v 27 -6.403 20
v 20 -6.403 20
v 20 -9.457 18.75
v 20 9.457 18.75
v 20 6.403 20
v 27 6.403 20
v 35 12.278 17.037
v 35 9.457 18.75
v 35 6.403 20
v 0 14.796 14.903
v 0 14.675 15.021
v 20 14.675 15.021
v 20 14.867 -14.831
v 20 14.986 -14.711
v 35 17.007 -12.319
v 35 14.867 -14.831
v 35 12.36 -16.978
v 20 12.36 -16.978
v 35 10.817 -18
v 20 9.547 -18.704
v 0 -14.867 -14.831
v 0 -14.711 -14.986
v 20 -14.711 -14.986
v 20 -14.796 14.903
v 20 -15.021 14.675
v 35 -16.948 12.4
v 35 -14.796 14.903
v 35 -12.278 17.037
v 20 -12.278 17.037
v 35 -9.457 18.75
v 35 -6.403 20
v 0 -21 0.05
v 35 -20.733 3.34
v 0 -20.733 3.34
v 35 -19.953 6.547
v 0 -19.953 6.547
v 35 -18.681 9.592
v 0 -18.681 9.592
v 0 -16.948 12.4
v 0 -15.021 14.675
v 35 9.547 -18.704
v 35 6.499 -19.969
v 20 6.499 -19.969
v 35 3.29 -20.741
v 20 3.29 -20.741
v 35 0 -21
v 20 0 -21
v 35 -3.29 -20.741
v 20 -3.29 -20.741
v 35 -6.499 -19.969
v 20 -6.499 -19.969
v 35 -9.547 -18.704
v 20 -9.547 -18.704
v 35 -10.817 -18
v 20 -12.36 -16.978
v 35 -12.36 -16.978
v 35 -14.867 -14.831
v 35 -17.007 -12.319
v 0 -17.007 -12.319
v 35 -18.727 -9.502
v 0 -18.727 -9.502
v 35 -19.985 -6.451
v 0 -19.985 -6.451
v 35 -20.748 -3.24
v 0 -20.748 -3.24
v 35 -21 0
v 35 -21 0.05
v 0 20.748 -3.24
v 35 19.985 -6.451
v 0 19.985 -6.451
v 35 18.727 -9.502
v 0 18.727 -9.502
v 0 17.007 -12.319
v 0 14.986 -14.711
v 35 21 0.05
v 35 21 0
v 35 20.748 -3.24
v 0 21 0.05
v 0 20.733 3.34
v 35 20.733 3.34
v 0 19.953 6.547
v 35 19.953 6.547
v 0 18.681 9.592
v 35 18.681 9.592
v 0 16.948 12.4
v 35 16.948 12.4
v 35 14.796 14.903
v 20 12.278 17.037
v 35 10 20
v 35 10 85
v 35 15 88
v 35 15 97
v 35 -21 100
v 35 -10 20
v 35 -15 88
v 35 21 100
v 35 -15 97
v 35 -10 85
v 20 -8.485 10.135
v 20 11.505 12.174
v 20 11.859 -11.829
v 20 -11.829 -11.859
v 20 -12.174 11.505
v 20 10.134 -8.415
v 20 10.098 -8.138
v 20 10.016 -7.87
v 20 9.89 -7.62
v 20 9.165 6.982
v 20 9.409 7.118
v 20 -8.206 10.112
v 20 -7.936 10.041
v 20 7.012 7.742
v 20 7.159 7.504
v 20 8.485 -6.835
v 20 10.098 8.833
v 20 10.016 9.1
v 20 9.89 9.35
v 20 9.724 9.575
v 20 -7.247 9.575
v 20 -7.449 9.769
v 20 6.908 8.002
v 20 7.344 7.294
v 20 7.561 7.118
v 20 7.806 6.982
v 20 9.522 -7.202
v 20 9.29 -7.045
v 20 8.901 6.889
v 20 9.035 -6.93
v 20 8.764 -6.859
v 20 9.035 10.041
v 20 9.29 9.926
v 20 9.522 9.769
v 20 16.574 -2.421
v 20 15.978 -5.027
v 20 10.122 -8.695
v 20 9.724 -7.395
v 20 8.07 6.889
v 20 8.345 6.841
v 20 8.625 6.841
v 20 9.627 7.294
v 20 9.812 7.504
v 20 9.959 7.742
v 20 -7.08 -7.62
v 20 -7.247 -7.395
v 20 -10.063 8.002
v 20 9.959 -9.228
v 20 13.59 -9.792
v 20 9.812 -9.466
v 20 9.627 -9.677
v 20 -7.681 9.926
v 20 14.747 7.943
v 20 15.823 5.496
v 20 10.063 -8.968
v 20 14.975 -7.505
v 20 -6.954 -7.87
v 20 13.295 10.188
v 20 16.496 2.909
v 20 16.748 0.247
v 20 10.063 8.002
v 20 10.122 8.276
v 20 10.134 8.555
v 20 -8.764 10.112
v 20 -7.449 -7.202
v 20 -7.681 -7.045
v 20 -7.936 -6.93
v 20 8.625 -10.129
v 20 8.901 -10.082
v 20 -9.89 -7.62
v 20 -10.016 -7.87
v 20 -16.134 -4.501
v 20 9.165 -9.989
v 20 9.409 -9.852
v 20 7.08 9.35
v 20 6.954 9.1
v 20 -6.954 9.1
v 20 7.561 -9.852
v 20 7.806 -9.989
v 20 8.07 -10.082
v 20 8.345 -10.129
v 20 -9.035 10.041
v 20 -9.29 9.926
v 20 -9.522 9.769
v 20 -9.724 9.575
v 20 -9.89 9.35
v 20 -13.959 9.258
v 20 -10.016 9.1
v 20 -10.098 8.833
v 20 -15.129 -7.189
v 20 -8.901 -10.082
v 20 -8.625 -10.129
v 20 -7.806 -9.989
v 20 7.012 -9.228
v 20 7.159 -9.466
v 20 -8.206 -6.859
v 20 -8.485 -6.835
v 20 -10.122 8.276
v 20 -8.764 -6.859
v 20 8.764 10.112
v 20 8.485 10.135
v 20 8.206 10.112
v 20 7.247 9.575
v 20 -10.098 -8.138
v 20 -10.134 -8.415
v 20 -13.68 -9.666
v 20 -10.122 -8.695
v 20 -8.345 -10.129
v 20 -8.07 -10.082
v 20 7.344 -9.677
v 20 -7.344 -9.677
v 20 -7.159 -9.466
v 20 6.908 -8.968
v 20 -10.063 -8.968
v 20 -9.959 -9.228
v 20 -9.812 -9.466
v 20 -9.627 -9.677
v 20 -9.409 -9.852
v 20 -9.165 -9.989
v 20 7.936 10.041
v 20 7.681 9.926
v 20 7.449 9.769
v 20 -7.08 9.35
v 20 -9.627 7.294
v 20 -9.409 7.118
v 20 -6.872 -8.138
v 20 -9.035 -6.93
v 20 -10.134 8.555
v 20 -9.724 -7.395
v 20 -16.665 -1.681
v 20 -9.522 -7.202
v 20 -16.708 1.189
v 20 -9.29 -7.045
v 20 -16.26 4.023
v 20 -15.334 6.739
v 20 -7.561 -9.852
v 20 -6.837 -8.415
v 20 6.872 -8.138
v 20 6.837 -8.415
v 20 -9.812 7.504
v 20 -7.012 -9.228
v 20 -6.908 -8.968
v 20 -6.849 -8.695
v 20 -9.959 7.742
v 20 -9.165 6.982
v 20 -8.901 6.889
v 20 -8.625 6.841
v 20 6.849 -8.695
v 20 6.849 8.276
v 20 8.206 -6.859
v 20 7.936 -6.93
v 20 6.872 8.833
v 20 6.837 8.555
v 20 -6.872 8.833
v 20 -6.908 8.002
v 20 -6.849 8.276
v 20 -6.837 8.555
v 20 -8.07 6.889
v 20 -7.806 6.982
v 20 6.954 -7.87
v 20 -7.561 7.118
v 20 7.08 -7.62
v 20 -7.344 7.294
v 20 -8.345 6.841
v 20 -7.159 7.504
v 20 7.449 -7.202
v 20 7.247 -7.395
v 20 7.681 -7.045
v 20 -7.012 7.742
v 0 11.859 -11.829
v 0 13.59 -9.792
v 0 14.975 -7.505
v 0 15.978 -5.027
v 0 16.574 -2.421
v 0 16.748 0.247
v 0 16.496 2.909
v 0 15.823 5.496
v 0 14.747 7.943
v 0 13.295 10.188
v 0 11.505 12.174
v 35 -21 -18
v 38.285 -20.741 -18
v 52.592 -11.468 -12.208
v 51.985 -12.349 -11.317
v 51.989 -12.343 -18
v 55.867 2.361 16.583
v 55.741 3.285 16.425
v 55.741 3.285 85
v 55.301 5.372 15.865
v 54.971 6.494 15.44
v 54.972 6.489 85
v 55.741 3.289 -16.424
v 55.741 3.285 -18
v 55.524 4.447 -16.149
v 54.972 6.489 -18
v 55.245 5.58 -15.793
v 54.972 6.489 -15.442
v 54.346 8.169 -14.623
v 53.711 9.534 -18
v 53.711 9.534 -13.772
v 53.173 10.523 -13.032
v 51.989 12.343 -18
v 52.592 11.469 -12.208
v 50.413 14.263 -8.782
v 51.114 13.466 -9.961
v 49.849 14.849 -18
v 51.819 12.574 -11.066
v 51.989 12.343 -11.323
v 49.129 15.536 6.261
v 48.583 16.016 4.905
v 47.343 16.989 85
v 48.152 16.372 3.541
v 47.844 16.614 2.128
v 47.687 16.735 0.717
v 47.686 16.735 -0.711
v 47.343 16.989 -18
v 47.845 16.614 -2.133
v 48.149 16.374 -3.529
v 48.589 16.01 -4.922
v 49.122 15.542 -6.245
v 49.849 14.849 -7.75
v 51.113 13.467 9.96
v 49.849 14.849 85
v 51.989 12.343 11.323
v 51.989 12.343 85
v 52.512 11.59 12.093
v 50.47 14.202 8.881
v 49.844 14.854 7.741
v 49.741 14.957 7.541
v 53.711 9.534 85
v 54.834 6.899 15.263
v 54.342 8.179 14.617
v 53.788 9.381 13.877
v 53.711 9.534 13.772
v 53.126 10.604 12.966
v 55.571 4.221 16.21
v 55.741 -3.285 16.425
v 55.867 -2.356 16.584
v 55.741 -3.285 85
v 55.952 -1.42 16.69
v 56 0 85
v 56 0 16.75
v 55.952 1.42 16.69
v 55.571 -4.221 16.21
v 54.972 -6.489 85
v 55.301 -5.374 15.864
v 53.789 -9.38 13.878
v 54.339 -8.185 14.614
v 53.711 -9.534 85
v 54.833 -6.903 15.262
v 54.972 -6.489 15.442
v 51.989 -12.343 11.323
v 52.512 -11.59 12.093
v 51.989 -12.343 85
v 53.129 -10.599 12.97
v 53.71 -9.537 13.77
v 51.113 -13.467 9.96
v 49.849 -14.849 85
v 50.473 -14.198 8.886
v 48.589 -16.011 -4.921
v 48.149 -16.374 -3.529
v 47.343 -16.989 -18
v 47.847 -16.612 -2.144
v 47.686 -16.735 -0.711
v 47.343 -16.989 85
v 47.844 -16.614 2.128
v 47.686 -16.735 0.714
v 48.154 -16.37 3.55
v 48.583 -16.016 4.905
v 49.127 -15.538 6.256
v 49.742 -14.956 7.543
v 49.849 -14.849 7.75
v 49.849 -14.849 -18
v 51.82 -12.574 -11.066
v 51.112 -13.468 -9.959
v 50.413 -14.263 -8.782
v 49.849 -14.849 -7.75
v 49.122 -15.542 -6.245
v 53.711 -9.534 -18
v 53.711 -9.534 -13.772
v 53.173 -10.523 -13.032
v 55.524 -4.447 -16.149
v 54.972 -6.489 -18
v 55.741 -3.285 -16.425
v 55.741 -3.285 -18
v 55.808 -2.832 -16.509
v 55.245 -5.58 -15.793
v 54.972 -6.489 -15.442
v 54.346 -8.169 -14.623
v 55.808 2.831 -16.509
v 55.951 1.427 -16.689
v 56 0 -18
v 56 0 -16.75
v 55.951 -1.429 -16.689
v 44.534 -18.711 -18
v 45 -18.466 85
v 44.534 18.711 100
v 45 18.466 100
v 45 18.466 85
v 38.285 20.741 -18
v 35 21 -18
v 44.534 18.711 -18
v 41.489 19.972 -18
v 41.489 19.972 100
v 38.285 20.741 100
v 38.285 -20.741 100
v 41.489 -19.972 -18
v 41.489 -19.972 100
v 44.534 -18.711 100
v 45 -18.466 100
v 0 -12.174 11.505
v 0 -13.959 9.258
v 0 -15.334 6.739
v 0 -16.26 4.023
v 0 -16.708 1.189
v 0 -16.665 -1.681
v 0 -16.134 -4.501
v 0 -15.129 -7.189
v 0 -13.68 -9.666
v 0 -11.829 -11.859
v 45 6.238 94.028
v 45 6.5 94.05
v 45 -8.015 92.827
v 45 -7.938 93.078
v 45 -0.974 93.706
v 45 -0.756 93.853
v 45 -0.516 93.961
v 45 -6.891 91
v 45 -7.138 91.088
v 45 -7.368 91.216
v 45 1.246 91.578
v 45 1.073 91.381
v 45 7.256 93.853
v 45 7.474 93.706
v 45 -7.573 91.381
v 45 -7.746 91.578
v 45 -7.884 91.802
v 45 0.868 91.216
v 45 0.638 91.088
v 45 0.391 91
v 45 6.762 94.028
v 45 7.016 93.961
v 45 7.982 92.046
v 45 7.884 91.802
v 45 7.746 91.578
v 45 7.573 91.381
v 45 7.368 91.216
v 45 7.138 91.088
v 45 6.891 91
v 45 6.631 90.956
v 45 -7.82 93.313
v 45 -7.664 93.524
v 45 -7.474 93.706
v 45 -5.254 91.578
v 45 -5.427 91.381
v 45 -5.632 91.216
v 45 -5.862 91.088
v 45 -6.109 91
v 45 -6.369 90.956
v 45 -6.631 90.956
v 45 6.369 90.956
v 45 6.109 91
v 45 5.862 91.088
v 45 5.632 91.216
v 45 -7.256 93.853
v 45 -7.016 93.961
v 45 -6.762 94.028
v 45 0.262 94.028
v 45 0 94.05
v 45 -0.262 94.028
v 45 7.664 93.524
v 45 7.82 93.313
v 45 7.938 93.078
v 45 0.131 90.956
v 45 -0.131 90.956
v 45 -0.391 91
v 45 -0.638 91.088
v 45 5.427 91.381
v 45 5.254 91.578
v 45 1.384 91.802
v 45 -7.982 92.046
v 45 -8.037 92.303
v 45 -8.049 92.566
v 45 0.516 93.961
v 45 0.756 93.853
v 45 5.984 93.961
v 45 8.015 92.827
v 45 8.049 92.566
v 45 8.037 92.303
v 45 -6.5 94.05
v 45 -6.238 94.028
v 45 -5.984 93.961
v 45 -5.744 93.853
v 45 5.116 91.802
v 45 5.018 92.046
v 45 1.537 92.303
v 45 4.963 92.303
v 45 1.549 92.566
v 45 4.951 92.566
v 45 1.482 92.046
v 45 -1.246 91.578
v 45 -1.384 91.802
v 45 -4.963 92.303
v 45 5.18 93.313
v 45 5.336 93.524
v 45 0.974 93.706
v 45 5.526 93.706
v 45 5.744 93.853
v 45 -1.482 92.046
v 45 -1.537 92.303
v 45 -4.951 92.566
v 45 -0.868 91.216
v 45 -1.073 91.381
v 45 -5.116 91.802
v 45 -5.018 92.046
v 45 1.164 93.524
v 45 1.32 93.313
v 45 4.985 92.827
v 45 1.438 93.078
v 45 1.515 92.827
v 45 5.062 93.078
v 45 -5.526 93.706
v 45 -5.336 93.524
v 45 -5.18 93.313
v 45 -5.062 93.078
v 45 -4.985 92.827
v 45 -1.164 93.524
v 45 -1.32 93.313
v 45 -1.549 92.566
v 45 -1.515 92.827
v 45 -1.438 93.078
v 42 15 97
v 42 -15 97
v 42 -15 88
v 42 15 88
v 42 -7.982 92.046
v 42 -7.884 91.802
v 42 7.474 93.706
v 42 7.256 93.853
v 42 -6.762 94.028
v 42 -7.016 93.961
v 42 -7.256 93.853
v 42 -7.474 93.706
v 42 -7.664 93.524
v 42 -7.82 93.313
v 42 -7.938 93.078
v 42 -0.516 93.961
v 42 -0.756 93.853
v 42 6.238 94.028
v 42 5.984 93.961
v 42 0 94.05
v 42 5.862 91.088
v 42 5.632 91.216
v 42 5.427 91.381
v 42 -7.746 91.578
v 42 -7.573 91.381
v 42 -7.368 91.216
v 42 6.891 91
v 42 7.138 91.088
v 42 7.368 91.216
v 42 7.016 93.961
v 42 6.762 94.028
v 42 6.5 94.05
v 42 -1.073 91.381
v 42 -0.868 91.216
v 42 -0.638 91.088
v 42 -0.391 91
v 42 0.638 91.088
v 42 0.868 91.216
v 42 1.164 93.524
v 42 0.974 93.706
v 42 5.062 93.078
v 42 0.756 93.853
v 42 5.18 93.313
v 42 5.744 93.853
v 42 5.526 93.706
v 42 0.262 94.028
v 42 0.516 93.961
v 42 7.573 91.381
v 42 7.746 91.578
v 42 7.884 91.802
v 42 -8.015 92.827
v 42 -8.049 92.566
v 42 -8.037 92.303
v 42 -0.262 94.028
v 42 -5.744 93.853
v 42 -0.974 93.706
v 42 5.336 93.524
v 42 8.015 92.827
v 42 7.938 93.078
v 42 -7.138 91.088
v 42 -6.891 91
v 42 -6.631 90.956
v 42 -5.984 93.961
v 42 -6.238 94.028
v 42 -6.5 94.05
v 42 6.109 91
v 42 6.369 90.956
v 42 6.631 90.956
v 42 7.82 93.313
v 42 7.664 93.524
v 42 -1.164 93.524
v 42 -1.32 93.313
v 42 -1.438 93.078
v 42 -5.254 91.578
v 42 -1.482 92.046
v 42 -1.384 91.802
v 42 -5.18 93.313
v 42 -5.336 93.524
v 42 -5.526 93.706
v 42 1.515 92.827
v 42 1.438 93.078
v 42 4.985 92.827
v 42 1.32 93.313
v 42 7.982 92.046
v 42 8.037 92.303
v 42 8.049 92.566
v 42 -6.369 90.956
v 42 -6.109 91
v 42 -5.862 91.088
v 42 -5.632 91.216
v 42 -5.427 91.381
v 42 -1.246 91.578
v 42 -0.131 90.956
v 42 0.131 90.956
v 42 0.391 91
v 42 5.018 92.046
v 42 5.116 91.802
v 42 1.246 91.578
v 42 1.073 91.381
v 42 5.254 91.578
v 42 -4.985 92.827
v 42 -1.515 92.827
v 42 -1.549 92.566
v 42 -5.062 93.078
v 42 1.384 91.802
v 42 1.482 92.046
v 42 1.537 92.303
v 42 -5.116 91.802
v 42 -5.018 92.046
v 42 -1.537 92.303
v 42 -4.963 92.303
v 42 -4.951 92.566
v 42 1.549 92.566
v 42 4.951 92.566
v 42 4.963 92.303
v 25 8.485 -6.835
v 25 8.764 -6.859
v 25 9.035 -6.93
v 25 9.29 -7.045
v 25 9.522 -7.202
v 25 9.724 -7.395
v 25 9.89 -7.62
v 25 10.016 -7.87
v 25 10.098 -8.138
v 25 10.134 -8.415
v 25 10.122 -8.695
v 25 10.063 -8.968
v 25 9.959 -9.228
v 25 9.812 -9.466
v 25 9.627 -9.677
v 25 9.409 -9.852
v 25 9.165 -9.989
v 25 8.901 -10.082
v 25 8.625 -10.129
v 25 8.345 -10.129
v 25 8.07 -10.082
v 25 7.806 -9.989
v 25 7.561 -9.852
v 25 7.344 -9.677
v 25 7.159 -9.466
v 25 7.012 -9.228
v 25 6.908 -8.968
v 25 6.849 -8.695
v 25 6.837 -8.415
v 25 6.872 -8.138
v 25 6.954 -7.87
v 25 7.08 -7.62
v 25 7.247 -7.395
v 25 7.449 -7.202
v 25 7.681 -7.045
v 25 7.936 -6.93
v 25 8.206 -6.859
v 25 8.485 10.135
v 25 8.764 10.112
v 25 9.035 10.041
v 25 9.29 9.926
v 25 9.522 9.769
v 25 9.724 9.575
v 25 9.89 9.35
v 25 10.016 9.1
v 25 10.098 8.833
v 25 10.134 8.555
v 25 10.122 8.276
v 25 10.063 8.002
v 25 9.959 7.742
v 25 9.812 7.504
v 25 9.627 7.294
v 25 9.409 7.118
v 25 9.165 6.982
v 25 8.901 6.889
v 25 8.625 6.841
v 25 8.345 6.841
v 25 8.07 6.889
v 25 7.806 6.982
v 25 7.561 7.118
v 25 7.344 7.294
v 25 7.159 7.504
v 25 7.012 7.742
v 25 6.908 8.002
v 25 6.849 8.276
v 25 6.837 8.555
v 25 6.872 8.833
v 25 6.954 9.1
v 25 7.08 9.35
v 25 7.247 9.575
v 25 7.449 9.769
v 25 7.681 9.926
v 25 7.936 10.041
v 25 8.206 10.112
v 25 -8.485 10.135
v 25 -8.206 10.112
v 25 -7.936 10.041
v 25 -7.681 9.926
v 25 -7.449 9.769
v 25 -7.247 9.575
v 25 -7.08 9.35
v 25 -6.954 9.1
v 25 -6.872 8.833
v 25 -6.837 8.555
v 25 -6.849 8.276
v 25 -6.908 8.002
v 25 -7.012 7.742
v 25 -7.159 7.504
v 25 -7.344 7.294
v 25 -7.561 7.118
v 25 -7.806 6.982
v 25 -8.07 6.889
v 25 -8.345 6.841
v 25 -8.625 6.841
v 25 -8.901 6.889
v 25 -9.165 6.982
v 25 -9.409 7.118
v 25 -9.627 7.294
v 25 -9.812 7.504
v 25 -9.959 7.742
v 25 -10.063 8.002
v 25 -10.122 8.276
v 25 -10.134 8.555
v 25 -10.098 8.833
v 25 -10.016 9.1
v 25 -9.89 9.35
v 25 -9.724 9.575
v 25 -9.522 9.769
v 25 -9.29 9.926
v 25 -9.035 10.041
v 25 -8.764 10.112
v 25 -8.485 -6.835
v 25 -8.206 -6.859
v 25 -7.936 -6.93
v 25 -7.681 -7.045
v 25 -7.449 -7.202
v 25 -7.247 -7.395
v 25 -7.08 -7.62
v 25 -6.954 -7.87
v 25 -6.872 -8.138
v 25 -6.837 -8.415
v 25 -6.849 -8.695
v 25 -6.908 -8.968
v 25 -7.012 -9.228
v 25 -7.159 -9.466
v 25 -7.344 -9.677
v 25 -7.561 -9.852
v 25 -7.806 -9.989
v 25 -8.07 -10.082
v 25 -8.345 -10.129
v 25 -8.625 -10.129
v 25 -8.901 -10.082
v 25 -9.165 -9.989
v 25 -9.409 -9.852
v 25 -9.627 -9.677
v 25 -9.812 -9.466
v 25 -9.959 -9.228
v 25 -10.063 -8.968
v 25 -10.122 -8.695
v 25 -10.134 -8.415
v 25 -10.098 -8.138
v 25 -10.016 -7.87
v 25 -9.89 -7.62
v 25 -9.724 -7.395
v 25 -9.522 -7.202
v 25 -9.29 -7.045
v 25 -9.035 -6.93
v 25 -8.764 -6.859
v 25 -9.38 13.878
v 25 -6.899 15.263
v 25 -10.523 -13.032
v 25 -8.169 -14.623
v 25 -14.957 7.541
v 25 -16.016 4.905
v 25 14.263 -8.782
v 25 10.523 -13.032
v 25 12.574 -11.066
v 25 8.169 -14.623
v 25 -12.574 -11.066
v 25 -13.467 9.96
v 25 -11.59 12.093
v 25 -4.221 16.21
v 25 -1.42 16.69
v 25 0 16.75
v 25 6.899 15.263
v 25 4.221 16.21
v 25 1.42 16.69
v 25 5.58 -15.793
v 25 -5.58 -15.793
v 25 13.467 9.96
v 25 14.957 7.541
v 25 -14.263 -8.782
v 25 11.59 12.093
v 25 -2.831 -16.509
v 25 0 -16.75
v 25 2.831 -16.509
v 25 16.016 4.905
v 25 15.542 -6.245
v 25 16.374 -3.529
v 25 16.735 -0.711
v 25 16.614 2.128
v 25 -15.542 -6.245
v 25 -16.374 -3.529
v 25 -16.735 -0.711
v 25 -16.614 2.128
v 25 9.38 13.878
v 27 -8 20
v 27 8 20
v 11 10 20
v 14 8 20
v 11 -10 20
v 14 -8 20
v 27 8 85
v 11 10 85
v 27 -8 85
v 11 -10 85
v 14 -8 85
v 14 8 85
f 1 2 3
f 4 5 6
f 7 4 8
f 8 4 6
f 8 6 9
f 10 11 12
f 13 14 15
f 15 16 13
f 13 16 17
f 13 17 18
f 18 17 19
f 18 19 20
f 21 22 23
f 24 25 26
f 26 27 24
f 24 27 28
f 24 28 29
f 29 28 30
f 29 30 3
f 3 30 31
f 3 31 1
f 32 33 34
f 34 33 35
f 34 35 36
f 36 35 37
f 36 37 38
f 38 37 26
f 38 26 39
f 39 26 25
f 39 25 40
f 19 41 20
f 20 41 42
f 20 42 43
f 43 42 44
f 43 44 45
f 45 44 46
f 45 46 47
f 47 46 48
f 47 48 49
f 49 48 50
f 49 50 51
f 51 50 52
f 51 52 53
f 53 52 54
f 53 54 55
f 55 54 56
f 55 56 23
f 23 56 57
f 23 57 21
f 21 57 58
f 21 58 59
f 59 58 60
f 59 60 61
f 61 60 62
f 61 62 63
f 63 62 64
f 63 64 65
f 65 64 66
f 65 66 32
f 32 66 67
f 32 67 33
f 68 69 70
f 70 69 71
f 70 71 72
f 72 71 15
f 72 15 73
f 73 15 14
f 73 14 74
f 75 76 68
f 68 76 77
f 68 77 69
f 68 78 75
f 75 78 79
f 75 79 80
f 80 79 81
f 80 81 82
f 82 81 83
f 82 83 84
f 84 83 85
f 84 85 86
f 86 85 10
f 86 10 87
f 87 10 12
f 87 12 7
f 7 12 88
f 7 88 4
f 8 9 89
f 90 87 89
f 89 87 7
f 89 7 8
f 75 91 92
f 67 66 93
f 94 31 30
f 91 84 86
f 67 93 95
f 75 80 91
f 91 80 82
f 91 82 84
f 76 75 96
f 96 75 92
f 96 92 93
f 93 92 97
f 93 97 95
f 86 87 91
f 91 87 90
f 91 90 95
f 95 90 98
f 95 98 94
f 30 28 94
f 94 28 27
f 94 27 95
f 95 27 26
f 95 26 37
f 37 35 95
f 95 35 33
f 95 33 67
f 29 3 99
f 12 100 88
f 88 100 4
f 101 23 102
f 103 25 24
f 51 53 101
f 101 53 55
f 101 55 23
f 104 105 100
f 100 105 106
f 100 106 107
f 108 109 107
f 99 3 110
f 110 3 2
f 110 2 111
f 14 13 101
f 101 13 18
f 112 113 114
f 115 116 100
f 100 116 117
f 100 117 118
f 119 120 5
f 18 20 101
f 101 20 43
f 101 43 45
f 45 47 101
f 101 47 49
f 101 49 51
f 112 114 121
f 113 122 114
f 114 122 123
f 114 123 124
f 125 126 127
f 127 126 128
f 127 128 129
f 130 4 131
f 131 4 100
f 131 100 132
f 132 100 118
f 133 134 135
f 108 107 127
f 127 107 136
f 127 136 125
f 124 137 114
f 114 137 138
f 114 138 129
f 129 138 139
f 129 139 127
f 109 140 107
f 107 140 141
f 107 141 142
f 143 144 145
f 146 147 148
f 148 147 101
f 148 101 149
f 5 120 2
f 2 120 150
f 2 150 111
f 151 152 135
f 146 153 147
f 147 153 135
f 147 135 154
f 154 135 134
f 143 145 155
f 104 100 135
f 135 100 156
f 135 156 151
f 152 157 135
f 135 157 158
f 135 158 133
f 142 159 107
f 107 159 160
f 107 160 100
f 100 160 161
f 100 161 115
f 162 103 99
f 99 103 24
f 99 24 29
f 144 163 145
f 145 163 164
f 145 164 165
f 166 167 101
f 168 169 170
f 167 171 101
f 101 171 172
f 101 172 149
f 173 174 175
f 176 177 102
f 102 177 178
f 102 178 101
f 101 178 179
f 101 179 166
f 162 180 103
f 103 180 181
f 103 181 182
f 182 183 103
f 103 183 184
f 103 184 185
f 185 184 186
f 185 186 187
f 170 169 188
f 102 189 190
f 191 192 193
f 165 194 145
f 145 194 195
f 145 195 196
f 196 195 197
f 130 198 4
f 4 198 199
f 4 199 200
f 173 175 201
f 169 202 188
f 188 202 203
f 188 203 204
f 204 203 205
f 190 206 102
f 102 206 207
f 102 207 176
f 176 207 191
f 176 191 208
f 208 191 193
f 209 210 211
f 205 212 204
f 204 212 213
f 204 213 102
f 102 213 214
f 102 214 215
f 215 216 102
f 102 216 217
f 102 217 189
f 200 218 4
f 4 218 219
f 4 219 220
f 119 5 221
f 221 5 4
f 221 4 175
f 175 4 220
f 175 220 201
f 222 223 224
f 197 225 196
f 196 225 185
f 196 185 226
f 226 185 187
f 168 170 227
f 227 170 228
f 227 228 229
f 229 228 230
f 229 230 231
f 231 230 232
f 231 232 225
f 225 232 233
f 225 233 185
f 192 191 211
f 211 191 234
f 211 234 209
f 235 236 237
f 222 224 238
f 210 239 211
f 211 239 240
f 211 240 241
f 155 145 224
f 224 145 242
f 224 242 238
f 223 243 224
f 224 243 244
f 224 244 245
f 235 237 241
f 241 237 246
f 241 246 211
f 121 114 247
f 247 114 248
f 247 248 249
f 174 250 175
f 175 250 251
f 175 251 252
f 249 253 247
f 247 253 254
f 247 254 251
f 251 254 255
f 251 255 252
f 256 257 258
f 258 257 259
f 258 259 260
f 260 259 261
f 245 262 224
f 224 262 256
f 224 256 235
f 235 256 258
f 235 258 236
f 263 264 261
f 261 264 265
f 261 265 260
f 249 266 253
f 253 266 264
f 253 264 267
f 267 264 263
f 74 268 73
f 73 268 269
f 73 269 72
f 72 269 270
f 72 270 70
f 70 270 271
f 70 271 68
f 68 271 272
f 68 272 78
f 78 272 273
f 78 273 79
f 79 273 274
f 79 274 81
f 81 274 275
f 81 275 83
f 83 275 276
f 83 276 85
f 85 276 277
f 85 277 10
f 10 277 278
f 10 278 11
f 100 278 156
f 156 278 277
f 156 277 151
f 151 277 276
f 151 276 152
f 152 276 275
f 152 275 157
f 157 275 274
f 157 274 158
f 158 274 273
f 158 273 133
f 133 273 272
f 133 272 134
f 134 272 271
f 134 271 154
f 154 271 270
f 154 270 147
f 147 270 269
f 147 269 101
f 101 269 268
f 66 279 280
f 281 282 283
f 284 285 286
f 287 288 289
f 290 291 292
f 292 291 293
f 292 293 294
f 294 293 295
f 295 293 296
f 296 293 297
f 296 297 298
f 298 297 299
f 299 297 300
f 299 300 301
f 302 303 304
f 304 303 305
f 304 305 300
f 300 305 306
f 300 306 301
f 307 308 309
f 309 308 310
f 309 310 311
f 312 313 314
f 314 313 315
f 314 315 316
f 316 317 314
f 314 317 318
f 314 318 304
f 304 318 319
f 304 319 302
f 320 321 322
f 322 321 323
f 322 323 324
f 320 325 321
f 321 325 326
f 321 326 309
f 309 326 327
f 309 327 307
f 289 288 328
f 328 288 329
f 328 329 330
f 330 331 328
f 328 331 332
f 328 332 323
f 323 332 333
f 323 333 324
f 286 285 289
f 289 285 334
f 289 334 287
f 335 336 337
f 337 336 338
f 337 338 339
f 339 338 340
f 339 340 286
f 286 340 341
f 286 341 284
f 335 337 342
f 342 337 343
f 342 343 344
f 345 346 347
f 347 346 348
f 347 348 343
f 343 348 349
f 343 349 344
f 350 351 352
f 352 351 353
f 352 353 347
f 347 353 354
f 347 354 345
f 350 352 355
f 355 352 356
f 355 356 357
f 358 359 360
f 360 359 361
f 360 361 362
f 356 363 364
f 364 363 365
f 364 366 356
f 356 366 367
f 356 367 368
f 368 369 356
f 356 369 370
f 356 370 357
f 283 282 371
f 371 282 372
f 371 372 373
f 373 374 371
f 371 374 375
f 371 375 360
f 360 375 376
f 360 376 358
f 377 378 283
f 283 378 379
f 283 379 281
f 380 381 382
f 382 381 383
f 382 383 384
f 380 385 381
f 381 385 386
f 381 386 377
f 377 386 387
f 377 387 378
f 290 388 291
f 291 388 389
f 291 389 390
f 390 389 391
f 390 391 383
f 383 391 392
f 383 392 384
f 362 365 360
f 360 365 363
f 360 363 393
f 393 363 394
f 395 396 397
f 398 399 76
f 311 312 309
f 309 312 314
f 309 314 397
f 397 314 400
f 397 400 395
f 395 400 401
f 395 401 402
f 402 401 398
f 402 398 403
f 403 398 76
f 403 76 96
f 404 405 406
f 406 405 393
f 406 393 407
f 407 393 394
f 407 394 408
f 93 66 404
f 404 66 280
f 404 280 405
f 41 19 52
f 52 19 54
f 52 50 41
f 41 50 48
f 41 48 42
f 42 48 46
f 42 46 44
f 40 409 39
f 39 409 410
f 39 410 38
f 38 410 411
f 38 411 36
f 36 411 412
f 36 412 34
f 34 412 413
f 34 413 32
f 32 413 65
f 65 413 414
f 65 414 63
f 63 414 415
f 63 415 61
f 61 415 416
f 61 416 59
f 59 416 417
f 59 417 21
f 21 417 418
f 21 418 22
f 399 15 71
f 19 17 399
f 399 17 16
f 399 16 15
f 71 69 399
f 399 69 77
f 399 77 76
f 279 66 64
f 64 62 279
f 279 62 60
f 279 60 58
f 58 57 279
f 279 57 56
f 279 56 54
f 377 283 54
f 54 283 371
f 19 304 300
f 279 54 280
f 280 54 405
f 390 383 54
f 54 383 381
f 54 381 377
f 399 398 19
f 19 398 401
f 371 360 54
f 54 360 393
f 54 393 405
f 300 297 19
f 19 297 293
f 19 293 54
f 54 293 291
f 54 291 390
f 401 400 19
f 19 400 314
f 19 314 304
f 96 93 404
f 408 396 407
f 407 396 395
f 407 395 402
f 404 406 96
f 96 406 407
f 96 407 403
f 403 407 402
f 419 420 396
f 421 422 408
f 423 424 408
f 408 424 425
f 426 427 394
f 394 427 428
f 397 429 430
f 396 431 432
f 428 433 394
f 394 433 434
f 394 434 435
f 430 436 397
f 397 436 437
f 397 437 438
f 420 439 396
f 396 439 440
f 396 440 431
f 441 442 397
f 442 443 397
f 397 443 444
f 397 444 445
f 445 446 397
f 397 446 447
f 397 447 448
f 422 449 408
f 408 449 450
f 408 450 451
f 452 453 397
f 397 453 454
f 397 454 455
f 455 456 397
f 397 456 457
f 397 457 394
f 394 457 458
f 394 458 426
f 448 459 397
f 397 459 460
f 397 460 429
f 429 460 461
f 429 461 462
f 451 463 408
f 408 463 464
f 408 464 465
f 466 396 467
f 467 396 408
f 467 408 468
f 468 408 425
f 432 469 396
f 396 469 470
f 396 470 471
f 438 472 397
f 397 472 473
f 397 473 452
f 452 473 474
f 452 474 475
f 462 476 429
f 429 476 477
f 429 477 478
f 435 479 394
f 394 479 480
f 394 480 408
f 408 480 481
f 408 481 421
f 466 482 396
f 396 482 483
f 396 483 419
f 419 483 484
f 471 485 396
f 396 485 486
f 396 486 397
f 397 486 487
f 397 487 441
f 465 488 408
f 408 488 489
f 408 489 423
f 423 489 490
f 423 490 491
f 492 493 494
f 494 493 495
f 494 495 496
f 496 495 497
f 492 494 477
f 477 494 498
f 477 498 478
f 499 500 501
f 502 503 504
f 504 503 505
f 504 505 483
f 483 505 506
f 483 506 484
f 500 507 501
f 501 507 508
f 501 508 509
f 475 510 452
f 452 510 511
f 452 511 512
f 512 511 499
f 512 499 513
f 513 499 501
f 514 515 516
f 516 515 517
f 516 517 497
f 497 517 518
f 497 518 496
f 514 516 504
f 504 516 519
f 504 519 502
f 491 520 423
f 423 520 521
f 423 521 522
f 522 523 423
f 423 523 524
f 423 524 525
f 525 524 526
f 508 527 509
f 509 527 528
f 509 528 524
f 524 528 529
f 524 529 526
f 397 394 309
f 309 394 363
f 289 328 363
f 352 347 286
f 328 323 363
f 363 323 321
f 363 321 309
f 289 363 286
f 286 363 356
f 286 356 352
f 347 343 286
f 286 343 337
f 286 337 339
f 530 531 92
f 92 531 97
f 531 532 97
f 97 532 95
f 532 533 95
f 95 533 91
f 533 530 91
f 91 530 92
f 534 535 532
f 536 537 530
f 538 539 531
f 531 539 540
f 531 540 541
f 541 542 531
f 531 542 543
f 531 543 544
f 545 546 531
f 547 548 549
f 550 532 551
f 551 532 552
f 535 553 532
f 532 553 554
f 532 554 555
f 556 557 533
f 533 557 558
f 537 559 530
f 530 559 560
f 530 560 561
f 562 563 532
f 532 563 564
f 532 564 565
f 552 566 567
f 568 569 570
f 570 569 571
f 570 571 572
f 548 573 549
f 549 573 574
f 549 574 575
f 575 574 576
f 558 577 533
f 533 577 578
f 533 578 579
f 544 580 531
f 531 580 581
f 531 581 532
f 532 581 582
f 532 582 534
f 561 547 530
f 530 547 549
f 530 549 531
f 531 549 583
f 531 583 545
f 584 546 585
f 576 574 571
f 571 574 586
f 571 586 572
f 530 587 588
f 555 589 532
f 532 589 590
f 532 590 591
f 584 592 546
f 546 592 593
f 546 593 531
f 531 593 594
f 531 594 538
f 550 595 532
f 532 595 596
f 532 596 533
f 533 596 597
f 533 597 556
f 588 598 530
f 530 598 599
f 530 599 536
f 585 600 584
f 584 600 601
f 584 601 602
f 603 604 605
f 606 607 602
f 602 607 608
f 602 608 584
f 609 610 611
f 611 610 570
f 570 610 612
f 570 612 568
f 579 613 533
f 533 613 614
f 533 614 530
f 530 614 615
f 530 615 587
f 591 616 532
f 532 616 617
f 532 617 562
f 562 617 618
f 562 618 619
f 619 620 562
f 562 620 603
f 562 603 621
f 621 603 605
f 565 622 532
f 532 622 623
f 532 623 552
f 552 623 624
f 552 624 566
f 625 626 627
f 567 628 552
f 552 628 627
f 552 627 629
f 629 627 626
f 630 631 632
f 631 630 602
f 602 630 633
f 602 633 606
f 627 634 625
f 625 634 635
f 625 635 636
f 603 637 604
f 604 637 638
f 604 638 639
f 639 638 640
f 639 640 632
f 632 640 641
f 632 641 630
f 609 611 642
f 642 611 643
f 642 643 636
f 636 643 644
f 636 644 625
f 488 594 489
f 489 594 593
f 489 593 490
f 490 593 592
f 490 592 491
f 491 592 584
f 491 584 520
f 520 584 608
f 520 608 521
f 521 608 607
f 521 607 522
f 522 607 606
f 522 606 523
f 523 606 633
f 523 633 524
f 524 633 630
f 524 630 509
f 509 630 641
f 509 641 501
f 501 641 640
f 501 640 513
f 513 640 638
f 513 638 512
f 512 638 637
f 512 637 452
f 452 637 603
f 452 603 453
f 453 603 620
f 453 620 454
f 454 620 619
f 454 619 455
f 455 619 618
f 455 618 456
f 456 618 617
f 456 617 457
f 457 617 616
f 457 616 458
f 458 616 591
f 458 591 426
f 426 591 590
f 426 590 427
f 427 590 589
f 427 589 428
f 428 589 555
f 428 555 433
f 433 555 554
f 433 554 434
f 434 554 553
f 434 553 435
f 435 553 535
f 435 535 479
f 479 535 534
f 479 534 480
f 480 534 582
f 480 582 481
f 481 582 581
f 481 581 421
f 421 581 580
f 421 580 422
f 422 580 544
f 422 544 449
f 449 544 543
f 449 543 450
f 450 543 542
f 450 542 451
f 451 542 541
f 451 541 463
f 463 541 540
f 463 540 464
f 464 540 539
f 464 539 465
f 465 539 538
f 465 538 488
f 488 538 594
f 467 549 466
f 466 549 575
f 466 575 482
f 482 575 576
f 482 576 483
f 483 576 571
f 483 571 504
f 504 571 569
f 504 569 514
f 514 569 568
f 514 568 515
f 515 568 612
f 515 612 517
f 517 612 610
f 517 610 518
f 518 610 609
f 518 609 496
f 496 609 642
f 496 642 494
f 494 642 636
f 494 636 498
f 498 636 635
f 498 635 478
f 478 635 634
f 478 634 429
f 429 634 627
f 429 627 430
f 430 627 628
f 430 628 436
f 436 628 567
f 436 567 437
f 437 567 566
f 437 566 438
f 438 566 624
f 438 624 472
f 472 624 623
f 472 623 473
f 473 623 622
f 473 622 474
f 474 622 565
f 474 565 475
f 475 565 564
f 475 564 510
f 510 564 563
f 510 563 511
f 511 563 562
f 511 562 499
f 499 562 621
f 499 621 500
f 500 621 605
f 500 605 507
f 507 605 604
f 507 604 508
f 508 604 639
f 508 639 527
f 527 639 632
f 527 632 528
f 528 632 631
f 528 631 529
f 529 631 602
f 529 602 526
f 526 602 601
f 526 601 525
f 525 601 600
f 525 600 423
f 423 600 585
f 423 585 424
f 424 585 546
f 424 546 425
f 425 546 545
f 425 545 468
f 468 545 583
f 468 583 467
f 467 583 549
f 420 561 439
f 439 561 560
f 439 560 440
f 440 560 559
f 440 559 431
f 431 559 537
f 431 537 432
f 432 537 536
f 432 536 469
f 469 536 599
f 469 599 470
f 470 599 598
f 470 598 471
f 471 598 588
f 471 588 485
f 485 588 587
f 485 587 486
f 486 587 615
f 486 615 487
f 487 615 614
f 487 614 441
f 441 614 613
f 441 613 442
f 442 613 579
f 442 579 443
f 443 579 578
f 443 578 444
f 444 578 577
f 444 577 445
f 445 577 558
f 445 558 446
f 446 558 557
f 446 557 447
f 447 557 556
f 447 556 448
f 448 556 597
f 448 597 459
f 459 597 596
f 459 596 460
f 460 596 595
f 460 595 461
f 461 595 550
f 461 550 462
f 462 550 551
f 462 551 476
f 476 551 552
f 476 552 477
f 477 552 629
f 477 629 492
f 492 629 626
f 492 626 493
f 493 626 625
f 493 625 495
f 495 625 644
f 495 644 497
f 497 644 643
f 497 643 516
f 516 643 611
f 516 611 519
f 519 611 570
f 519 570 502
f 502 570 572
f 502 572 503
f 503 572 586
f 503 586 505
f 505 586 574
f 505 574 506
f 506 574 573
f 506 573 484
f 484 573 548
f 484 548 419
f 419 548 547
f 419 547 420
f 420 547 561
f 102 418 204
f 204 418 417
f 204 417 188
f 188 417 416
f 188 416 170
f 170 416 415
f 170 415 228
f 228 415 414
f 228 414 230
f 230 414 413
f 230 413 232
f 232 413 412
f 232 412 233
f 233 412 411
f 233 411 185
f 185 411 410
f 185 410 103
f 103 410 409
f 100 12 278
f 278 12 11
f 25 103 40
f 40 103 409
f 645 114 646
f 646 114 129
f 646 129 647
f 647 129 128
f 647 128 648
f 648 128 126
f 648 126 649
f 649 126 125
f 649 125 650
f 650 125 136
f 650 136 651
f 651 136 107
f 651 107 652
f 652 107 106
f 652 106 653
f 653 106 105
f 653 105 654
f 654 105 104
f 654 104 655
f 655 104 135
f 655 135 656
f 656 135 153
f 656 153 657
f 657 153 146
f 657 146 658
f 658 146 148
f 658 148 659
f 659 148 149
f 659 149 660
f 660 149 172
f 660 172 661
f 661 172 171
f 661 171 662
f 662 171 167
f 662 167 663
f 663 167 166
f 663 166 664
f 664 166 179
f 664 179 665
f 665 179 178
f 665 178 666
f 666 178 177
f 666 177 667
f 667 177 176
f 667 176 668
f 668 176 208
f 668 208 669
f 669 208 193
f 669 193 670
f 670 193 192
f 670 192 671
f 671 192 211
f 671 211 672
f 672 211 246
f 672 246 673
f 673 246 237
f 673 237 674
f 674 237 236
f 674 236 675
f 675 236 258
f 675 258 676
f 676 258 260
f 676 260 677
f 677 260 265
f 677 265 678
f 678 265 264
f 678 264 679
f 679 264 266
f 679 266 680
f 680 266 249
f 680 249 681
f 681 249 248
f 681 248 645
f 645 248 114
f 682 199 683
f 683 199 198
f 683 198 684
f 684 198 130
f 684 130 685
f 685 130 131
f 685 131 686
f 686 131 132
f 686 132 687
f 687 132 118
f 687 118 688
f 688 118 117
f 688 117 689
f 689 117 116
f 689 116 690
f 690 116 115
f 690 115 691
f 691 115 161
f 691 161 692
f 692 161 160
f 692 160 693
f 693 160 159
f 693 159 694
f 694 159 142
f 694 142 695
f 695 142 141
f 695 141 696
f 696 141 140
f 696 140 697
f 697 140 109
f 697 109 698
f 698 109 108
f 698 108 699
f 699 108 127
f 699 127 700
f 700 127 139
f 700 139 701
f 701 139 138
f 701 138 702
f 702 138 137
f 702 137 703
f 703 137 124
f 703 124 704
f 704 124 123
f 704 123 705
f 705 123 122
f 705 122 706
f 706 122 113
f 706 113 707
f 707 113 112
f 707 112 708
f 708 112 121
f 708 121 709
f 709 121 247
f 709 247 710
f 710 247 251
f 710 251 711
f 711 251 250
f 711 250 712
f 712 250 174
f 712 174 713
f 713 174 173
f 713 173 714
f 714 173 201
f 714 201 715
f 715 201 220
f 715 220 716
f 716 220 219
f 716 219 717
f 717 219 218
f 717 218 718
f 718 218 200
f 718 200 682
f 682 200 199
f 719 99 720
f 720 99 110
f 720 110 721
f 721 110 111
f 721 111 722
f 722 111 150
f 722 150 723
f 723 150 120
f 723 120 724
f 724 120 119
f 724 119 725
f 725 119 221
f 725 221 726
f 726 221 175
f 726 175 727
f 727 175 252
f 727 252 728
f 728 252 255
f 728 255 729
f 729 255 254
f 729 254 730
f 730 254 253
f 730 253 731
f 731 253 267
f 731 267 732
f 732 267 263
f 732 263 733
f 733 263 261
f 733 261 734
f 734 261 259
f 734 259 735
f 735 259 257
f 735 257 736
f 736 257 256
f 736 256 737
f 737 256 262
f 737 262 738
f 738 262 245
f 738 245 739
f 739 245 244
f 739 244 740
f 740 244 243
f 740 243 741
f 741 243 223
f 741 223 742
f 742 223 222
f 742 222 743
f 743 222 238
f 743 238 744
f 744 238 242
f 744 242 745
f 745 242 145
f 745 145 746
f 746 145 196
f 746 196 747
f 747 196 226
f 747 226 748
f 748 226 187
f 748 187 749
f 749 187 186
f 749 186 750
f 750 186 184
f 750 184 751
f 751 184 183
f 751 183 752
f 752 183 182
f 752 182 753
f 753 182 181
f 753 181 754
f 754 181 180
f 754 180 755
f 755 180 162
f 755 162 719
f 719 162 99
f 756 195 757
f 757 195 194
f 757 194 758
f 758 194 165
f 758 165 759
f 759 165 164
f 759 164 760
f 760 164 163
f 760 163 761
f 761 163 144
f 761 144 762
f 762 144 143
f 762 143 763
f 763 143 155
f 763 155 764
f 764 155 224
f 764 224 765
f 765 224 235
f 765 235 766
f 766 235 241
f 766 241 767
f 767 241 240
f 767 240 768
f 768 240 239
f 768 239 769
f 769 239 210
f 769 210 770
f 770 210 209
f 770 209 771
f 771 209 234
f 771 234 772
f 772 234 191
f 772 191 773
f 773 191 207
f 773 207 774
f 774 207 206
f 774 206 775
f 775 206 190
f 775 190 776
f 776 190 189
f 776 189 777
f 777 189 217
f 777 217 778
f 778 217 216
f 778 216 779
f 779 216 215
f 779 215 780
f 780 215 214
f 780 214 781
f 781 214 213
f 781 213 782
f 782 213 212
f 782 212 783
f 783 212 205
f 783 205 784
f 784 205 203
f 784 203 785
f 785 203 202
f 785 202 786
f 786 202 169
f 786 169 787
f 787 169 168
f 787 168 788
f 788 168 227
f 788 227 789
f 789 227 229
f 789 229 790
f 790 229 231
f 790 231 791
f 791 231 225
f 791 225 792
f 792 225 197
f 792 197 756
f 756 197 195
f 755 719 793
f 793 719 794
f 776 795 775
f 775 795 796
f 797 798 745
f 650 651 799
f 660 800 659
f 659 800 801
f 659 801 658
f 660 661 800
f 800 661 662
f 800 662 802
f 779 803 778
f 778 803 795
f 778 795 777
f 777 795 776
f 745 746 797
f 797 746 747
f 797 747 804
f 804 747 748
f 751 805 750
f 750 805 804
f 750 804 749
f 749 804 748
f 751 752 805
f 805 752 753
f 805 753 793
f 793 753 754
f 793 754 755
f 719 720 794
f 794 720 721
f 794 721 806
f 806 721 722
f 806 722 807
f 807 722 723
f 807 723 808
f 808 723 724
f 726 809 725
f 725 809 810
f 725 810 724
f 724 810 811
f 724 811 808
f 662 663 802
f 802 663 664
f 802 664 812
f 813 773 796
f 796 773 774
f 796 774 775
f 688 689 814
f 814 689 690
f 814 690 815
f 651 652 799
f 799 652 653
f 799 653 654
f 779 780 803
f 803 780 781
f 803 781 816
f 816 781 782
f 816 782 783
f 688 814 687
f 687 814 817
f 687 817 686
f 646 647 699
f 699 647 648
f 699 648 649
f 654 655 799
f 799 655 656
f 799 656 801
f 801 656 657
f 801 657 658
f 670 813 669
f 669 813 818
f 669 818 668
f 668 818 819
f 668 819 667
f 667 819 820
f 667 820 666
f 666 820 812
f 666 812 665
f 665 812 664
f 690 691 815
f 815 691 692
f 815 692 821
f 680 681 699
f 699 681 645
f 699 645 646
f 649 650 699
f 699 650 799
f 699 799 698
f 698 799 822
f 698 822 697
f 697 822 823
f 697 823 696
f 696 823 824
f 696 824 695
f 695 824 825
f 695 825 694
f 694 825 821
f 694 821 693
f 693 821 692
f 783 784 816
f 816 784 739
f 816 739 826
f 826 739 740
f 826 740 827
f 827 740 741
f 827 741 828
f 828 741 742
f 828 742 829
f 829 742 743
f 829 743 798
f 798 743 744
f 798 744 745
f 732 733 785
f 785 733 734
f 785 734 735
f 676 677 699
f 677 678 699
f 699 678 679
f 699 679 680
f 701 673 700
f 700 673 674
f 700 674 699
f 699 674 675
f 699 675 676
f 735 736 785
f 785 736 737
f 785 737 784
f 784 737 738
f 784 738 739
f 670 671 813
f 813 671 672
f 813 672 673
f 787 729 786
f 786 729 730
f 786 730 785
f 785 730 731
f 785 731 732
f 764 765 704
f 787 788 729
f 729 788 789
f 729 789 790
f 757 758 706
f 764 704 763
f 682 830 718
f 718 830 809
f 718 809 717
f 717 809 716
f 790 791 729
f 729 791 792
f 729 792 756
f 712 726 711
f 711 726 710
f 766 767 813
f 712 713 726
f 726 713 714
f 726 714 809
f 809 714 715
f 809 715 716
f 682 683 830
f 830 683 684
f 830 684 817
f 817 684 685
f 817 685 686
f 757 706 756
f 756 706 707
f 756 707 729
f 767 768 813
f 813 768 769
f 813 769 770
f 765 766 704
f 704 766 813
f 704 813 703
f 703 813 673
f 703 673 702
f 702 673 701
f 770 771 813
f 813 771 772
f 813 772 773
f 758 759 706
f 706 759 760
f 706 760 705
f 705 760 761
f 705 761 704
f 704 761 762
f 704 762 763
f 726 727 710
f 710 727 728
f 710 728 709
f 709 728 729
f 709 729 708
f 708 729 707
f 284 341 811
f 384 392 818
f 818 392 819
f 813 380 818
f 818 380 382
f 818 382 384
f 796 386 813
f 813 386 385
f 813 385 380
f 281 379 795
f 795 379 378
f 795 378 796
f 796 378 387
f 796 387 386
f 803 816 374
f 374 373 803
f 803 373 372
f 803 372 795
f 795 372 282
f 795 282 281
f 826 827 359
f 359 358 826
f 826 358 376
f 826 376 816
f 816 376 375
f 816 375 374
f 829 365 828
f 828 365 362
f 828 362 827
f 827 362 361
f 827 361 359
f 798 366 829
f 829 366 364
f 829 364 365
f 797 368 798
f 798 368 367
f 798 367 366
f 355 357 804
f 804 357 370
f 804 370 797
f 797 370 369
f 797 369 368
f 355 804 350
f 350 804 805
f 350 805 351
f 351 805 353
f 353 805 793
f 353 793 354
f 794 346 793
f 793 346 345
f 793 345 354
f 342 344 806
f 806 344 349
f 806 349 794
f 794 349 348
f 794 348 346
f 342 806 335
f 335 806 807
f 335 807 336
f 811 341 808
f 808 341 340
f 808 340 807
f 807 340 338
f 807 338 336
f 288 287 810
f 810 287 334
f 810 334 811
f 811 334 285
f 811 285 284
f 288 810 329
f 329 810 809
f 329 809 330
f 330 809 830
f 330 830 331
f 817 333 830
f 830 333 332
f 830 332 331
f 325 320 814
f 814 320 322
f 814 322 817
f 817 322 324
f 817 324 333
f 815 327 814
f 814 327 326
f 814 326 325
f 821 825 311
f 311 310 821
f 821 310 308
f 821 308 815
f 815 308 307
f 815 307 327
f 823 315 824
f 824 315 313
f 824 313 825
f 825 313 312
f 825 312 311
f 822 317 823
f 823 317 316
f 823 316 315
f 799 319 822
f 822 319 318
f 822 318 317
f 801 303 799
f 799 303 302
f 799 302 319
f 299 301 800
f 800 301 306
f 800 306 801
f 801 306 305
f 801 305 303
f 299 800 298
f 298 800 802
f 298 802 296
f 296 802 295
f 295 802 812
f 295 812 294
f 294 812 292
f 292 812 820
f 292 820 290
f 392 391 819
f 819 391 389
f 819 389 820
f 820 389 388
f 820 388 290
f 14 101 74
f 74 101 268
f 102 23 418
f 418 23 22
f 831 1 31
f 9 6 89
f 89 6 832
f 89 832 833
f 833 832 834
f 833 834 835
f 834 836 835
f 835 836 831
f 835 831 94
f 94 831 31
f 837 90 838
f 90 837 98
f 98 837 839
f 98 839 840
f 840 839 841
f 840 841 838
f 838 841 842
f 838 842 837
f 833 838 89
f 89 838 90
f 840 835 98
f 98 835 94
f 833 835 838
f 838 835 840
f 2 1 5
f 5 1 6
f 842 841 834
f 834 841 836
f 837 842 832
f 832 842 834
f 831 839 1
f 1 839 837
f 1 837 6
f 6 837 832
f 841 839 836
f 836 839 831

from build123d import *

# Parameters (mm, degrees)
SKETCH1_R                = 21
BOSS_EXTRUDE1_DEPTH      = 35
BOSS_EXTRUDE2_DEPTH      = 100
BOSS_EXTRUDE2_DEPTH_BACK = 18
CUT_EXTRUDE2_DEPTH       = 15
SKETCH7_W                = 9
SKETCH7_H                = 30
CUT_EXTRUDE3_DEPTH       = 7
SKETCH8_R                = 1.55
CUT_EXTRUDE4_DEPTH       = 7
SKETCH9_R                = 16.75
CUT_EXTRUDE5_DEPTH       = 20
CUT_EXTRUDE6_DEPTH       = 20
SKETCH11_R               = 1.65
CUT_EXTRUDE9_DEPTH       = 25
SKETCH12_R               = 16.75
CUT_EXTRUDE8_DEPTH       = 10
CUT_EXTRUDE8_DEPTH_BACK  = 25
CUT_EXTRUDE10_DEPTH      = 20
SKETCH15_W               = 65
SKETCH15_H               = 20
BOSS_EXTRUDE3_DEPTH      = 24
SKETCH16_W               = 13
SKETCH16_H               = 16
CUT_EXTRUDE11_DEPTH      = 65


with BuildPart() as part:
    # Sketch1 → Boss-Extrude1 (new body)
    with BuildSketch(Plane(origin=(0, 0, 0), x_dir=(0, 0, -1), z_dir=(1, 0, 0))):
        Circle(SKETCH1_R)
    extrude(amount=BOSS_EXTRUDE1_DEPTH)

    # Sketch4 → Boss-Extrude2 (add, two sides)
    with BuildSketch(Plane.XY) as boss_extrude2_sk:
        with BuildLine():
            Line((35, 21), (35, -21))
            ThreePointArc((35, -21), (56, 0), (35, 21))
        make_face()
    extrude(amount=BOSS_EXTRUDE2_DEPTH)
    extrude(boss_extrude2_sk.sketch, amount=-BOSS_EXTRUDE2_DEPTH_BACK)

    # Sketch5 → Cut-Extrude2 (cut)
    with BuildSketch(Plane.XY.offset(100)):
        with BuildLine():
            Line((45, -18.466185313), (45, 18.466185313))
            ThreePointArc((45, 18.466185313), (56, 0), (45, -18.466185313))
        make_face()
    extrude(amount=-CUT_EXTRUDE2_DEPTH, mode=Mode.SUBTRACT)

    # Sketch7 → Cut-Extrude3 (cut)
    with BuildSketch(Plane.ZY.offset(-35)):
        with Locations((92.5, 0)):
            Rectangle(SKETCH7_W, SKETCH7_H)
    extrude(amount=-CUT_EXTRUDE3_DEPTH, mode=Mode.SUBTRACT)

    # Sketch8 → Cut-Extrude4 (cut)
    with BuildSketch(Plane.ZY.offset(-42)):
        with Locations((92.5, 6.5)):
            Circle(SKETCH8_R)
        with Locations((92.5, 0)):
            Circle(SKETCH8_R)
        with Locations((92.5, -6.5)):
            Circle(SKETCH8_R)
    extrude(amount=-CUT_EXTRUDE4_DEPTH, mode=Mode.SUBTRACT)

    # Sketch9 → Cut-Extrude5 (cut)
    with BuildSketch(Plane.ZY):
        Circle(SKETCH9_R)
    extrude(amount=-CUT_EXTRUDE5_DEPTH, mode=Mode.SUBTRACT)

    # Sketch10 → Cut-Extrude6 (cut)
    with BuildSketch(Plane.ZY):
        with BuildLine():
            Line((15.02133973, 14.675127009), (12.173811363, 11.504817117))
            ThreePointArc((12.173811363, 11.504817117), (16.743318767, -0.473050368), (11.504817117, -12.173811363))
            Line((11.504817117, -12.173811363), (14.675127009, -15.02133973))
            ThreePointArc((14.675127009, -15.02133973), (20.998573008, -0.244809363), (15.02133973, 14.675127009))
        make_face()
    extrude(amount=-CUT_EXTRUDE6_DEPTH, mode=Mode.SUBTRACT)

    # Sketch11 → Cut-Extrude9 (cut)
    with BuildSketch(Plane.ZY.offset(-20)):
        with Locations((-8.485281374, 8.485281374)):
            Circle(SKETCH11_R)
        with Locations((8.485281374, 8.485281374)):
            Circle(SKETCH11_R)
        with Locations((8.485281374, -8.485281374)):
            Circle(SKETCH11_R)
        with Locations((-8.485281374, -8.485281374)):
            Circle(SKETCH11_R)
    extrude(amount=-CUT_EXTRUDE9_DEPTH, mode=Mode.SUBTRACT)

    # Sketch12 → Cut-Extrude8 (cut, two sides)
    with BuildSketch(Plane.ZY.offset(-35)) as cut_extrude8_sk:
        Circle(SKETCH12_R)
    extrude(amount=CUT_EXTRUDE8_DEPTH, mode=Mode.SUBTRACT)
    extrude(cut_extrude8_sk.sketch, amount=-CUT_EXTRUDE8_DEPTH_BACK, mode=Mode.SUBTRACT)

    # Sketch14 → Cut-Extrude10 (cut)
    with BuildSketch(Plane.ZY):
        with BuildLine():
            Line((-14.710965935, 14.986243067), (-11.829145313, 11.858913153))
            ThreePointArc((-11.829145313, 11.858913153), (-16.749986774, 0.021049042), (-11.858913153, -11.829145313))
            Line((-11.858913153, -11.829145313), (-14.986243067, -14.710965935))
            ThreePointArc((-14.986243067, -14.710965935), (-20.999097868, 0.194650327), (-14.710965935, 14.986243067))
        make_face()
    extrude(amount=-CUT_EXTRUDE10_DEPTH, mode=Mode.SUBTRACT)

    # Sketch15 → Boss-Extrude3 (add)
    with BuildSketch(Plane.ZY.offset(-35)):
        with Locations((52.5, 0)):
            Rectangle(SKETCH15_W, SKETCH15_H)
    extrude(amount=BOSS_EXTRUDE3_DEPTH)

    # Sketch16 → Cut-Extrude11 (cut)
    with BuildSketch(Plane.XY.offset(85)):
        with Locations((20.5, 0)):
            Rectangle(SKETCH16_W, SKETCH16_H)
    extrude(amount=-CUT_EXTRUDE11_DEPTH, mode=Mode.SUBTRACT)


solid = part.part
